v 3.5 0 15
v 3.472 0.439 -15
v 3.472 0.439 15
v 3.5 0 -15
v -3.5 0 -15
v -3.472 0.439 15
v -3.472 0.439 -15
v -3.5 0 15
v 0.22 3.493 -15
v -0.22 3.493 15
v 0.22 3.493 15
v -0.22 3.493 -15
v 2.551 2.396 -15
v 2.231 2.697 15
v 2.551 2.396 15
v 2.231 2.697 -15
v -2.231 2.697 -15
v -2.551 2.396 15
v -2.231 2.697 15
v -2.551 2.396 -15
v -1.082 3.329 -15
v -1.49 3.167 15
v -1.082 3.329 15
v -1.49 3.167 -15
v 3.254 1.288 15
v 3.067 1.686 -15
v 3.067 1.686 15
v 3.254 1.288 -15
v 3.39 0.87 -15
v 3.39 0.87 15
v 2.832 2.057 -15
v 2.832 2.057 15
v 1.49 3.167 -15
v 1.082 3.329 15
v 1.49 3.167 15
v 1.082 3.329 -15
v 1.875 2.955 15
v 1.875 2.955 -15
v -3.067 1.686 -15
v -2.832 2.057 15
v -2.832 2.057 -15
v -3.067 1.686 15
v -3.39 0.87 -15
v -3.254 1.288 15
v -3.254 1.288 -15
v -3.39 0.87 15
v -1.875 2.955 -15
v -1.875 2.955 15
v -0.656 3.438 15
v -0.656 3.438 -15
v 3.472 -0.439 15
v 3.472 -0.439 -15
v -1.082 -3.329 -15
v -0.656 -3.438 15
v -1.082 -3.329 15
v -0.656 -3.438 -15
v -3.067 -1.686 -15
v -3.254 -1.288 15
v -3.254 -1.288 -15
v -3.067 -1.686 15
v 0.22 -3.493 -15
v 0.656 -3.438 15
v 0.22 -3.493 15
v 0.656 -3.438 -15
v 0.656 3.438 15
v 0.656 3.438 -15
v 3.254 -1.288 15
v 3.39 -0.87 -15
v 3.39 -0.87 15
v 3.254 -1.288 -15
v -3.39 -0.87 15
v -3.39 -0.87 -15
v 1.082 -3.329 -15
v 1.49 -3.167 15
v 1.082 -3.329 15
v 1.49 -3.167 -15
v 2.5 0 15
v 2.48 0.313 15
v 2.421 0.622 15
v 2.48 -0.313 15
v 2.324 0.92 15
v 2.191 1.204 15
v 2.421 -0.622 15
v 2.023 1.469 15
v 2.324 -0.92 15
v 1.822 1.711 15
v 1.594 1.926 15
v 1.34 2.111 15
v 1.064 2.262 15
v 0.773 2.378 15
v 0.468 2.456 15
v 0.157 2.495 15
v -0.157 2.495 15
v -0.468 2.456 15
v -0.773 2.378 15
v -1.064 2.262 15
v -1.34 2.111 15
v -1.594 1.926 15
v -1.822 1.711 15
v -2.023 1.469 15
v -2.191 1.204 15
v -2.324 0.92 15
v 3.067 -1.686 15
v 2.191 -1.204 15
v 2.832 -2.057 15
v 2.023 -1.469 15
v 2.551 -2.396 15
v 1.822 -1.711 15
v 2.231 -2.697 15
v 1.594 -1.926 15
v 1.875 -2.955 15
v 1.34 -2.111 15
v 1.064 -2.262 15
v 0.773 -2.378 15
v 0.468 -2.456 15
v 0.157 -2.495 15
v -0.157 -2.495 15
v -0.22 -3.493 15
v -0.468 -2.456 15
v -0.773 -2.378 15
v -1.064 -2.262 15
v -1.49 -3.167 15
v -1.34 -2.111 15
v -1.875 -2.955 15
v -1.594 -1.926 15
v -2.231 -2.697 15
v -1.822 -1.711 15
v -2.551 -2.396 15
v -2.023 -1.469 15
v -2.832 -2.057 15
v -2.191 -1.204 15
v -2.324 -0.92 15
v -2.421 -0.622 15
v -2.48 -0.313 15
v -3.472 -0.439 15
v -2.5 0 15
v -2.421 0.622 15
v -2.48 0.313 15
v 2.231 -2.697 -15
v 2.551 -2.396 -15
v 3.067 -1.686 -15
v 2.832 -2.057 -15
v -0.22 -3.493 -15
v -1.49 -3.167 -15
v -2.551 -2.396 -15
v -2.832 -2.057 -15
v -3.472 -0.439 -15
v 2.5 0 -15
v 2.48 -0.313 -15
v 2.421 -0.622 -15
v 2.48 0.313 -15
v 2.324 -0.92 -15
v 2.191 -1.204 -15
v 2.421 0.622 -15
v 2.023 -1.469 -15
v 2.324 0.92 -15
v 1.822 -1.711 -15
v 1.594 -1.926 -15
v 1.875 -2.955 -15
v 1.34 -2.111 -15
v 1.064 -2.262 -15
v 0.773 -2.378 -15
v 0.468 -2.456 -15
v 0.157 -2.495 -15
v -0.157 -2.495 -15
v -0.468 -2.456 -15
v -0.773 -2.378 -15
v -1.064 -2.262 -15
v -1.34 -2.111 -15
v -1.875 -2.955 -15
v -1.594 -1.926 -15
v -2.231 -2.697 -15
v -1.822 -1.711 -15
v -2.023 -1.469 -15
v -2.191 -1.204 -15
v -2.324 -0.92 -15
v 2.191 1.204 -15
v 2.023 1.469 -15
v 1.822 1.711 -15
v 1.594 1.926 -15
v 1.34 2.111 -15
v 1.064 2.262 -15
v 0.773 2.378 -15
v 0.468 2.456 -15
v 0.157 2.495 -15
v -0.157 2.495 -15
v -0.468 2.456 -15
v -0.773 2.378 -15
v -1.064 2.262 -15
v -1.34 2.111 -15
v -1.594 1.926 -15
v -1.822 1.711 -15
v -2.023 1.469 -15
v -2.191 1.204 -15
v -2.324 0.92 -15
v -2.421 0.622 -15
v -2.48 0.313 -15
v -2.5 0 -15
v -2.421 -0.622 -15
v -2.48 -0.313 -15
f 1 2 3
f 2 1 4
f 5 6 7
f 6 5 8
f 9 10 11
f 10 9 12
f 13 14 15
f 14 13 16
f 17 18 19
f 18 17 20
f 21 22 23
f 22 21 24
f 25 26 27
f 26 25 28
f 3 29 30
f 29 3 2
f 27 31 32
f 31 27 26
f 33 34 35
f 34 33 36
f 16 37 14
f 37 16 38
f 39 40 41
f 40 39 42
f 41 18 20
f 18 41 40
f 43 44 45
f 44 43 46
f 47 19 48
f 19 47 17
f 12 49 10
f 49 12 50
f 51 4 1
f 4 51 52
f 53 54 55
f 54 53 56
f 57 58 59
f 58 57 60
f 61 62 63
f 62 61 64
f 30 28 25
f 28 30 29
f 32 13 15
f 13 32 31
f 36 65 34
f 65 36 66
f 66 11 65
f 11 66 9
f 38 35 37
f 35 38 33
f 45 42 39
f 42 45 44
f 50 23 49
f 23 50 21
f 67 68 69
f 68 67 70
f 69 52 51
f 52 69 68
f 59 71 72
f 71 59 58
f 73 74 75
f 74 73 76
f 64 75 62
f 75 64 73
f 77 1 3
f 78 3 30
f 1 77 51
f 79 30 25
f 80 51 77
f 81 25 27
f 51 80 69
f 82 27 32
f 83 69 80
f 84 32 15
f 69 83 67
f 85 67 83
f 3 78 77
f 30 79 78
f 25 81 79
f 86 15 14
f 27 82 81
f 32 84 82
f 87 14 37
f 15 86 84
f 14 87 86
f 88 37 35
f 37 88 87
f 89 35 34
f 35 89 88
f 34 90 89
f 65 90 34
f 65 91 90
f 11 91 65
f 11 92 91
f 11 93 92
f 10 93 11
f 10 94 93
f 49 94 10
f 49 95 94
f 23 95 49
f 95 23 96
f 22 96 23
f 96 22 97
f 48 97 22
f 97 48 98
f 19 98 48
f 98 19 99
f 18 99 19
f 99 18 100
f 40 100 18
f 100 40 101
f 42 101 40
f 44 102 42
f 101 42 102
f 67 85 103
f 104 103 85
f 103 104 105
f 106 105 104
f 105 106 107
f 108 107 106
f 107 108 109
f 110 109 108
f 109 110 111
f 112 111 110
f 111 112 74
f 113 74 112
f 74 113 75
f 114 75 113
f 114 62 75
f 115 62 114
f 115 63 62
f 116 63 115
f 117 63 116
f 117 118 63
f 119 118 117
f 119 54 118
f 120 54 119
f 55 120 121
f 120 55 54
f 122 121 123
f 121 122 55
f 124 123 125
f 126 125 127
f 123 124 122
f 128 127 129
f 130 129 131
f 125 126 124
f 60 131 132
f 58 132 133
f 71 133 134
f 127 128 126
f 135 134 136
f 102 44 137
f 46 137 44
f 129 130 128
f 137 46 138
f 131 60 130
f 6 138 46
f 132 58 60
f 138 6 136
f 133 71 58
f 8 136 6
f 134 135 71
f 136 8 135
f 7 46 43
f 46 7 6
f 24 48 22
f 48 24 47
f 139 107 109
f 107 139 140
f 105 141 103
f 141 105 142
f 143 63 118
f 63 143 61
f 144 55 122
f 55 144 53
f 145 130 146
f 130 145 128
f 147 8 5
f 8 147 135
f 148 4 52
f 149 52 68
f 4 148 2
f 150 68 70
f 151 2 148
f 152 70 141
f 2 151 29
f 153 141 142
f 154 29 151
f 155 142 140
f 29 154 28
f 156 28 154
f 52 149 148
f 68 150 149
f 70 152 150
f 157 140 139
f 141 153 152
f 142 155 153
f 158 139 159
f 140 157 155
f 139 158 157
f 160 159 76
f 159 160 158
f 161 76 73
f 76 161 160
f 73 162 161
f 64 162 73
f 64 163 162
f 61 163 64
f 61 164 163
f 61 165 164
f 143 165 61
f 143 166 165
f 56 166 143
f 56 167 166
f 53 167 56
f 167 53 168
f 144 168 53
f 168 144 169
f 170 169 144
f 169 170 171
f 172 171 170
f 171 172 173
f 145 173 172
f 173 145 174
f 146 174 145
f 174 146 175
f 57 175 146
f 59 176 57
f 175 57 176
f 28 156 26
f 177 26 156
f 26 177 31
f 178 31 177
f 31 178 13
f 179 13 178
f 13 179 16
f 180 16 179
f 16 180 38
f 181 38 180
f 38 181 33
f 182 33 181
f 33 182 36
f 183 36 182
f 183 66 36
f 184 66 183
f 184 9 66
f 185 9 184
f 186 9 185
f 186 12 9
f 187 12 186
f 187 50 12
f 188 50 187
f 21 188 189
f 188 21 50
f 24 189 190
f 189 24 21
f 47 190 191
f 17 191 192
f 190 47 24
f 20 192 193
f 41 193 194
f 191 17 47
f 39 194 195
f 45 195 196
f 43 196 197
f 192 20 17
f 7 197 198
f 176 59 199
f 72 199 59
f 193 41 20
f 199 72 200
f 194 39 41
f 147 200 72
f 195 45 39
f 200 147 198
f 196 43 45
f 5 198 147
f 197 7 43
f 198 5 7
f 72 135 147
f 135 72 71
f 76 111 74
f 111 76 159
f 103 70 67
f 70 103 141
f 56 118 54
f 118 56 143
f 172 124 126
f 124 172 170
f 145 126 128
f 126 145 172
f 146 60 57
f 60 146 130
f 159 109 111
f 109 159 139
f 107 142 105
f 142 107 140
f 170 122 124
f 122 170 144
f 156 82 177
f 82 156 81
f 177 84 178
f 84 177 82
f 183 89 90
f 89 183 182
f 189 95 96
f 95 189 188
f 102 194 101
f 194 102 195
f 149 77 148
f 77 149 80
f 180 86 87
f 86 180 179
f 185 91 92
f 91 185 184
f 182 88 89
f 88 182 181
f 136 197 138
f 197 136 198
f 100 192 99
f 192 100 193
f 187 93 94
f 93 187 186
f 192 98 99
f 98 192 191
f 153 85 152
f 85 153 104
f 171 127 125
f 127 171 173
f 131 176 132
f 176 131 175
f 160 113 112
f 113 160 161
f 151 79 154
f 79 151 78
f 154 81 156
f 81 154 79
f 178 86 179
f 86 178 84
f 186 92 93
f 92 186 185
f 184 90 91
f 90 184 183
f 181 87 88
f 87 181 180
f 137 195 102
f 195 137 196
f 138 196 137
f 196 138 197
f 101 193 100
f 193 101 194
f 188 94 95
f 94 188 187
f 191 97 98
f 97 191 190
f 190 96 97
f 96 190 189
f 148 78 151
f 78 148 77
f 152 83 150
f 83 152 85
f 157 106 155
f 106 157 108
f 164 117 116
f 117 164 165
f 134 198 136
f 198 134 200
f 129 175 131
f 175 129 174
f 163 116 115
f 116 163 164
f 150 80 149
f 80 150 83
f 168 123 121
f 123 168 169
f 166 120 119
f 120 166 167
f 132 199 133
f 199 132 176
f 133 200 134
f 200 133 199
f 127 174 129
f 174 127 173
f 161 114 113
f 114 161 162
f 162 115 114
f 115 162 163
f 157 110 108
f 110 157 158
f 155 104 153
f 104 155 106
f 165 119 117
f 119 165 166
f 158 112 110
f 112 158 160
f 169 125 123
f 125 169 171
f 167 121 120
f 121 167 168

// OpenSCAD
$fn = 50;


difference() {
	union() {
		translate(v = [0, 0, -15.0000000000]) {
			cylinder(h = 30, r = 3.5000000000);
		}
	}
	union() {
		translate(v = [0, 0, -100.0000000000]) {
			cylinder(h = 200, r = 2.5000000000);
		}
	}
}
